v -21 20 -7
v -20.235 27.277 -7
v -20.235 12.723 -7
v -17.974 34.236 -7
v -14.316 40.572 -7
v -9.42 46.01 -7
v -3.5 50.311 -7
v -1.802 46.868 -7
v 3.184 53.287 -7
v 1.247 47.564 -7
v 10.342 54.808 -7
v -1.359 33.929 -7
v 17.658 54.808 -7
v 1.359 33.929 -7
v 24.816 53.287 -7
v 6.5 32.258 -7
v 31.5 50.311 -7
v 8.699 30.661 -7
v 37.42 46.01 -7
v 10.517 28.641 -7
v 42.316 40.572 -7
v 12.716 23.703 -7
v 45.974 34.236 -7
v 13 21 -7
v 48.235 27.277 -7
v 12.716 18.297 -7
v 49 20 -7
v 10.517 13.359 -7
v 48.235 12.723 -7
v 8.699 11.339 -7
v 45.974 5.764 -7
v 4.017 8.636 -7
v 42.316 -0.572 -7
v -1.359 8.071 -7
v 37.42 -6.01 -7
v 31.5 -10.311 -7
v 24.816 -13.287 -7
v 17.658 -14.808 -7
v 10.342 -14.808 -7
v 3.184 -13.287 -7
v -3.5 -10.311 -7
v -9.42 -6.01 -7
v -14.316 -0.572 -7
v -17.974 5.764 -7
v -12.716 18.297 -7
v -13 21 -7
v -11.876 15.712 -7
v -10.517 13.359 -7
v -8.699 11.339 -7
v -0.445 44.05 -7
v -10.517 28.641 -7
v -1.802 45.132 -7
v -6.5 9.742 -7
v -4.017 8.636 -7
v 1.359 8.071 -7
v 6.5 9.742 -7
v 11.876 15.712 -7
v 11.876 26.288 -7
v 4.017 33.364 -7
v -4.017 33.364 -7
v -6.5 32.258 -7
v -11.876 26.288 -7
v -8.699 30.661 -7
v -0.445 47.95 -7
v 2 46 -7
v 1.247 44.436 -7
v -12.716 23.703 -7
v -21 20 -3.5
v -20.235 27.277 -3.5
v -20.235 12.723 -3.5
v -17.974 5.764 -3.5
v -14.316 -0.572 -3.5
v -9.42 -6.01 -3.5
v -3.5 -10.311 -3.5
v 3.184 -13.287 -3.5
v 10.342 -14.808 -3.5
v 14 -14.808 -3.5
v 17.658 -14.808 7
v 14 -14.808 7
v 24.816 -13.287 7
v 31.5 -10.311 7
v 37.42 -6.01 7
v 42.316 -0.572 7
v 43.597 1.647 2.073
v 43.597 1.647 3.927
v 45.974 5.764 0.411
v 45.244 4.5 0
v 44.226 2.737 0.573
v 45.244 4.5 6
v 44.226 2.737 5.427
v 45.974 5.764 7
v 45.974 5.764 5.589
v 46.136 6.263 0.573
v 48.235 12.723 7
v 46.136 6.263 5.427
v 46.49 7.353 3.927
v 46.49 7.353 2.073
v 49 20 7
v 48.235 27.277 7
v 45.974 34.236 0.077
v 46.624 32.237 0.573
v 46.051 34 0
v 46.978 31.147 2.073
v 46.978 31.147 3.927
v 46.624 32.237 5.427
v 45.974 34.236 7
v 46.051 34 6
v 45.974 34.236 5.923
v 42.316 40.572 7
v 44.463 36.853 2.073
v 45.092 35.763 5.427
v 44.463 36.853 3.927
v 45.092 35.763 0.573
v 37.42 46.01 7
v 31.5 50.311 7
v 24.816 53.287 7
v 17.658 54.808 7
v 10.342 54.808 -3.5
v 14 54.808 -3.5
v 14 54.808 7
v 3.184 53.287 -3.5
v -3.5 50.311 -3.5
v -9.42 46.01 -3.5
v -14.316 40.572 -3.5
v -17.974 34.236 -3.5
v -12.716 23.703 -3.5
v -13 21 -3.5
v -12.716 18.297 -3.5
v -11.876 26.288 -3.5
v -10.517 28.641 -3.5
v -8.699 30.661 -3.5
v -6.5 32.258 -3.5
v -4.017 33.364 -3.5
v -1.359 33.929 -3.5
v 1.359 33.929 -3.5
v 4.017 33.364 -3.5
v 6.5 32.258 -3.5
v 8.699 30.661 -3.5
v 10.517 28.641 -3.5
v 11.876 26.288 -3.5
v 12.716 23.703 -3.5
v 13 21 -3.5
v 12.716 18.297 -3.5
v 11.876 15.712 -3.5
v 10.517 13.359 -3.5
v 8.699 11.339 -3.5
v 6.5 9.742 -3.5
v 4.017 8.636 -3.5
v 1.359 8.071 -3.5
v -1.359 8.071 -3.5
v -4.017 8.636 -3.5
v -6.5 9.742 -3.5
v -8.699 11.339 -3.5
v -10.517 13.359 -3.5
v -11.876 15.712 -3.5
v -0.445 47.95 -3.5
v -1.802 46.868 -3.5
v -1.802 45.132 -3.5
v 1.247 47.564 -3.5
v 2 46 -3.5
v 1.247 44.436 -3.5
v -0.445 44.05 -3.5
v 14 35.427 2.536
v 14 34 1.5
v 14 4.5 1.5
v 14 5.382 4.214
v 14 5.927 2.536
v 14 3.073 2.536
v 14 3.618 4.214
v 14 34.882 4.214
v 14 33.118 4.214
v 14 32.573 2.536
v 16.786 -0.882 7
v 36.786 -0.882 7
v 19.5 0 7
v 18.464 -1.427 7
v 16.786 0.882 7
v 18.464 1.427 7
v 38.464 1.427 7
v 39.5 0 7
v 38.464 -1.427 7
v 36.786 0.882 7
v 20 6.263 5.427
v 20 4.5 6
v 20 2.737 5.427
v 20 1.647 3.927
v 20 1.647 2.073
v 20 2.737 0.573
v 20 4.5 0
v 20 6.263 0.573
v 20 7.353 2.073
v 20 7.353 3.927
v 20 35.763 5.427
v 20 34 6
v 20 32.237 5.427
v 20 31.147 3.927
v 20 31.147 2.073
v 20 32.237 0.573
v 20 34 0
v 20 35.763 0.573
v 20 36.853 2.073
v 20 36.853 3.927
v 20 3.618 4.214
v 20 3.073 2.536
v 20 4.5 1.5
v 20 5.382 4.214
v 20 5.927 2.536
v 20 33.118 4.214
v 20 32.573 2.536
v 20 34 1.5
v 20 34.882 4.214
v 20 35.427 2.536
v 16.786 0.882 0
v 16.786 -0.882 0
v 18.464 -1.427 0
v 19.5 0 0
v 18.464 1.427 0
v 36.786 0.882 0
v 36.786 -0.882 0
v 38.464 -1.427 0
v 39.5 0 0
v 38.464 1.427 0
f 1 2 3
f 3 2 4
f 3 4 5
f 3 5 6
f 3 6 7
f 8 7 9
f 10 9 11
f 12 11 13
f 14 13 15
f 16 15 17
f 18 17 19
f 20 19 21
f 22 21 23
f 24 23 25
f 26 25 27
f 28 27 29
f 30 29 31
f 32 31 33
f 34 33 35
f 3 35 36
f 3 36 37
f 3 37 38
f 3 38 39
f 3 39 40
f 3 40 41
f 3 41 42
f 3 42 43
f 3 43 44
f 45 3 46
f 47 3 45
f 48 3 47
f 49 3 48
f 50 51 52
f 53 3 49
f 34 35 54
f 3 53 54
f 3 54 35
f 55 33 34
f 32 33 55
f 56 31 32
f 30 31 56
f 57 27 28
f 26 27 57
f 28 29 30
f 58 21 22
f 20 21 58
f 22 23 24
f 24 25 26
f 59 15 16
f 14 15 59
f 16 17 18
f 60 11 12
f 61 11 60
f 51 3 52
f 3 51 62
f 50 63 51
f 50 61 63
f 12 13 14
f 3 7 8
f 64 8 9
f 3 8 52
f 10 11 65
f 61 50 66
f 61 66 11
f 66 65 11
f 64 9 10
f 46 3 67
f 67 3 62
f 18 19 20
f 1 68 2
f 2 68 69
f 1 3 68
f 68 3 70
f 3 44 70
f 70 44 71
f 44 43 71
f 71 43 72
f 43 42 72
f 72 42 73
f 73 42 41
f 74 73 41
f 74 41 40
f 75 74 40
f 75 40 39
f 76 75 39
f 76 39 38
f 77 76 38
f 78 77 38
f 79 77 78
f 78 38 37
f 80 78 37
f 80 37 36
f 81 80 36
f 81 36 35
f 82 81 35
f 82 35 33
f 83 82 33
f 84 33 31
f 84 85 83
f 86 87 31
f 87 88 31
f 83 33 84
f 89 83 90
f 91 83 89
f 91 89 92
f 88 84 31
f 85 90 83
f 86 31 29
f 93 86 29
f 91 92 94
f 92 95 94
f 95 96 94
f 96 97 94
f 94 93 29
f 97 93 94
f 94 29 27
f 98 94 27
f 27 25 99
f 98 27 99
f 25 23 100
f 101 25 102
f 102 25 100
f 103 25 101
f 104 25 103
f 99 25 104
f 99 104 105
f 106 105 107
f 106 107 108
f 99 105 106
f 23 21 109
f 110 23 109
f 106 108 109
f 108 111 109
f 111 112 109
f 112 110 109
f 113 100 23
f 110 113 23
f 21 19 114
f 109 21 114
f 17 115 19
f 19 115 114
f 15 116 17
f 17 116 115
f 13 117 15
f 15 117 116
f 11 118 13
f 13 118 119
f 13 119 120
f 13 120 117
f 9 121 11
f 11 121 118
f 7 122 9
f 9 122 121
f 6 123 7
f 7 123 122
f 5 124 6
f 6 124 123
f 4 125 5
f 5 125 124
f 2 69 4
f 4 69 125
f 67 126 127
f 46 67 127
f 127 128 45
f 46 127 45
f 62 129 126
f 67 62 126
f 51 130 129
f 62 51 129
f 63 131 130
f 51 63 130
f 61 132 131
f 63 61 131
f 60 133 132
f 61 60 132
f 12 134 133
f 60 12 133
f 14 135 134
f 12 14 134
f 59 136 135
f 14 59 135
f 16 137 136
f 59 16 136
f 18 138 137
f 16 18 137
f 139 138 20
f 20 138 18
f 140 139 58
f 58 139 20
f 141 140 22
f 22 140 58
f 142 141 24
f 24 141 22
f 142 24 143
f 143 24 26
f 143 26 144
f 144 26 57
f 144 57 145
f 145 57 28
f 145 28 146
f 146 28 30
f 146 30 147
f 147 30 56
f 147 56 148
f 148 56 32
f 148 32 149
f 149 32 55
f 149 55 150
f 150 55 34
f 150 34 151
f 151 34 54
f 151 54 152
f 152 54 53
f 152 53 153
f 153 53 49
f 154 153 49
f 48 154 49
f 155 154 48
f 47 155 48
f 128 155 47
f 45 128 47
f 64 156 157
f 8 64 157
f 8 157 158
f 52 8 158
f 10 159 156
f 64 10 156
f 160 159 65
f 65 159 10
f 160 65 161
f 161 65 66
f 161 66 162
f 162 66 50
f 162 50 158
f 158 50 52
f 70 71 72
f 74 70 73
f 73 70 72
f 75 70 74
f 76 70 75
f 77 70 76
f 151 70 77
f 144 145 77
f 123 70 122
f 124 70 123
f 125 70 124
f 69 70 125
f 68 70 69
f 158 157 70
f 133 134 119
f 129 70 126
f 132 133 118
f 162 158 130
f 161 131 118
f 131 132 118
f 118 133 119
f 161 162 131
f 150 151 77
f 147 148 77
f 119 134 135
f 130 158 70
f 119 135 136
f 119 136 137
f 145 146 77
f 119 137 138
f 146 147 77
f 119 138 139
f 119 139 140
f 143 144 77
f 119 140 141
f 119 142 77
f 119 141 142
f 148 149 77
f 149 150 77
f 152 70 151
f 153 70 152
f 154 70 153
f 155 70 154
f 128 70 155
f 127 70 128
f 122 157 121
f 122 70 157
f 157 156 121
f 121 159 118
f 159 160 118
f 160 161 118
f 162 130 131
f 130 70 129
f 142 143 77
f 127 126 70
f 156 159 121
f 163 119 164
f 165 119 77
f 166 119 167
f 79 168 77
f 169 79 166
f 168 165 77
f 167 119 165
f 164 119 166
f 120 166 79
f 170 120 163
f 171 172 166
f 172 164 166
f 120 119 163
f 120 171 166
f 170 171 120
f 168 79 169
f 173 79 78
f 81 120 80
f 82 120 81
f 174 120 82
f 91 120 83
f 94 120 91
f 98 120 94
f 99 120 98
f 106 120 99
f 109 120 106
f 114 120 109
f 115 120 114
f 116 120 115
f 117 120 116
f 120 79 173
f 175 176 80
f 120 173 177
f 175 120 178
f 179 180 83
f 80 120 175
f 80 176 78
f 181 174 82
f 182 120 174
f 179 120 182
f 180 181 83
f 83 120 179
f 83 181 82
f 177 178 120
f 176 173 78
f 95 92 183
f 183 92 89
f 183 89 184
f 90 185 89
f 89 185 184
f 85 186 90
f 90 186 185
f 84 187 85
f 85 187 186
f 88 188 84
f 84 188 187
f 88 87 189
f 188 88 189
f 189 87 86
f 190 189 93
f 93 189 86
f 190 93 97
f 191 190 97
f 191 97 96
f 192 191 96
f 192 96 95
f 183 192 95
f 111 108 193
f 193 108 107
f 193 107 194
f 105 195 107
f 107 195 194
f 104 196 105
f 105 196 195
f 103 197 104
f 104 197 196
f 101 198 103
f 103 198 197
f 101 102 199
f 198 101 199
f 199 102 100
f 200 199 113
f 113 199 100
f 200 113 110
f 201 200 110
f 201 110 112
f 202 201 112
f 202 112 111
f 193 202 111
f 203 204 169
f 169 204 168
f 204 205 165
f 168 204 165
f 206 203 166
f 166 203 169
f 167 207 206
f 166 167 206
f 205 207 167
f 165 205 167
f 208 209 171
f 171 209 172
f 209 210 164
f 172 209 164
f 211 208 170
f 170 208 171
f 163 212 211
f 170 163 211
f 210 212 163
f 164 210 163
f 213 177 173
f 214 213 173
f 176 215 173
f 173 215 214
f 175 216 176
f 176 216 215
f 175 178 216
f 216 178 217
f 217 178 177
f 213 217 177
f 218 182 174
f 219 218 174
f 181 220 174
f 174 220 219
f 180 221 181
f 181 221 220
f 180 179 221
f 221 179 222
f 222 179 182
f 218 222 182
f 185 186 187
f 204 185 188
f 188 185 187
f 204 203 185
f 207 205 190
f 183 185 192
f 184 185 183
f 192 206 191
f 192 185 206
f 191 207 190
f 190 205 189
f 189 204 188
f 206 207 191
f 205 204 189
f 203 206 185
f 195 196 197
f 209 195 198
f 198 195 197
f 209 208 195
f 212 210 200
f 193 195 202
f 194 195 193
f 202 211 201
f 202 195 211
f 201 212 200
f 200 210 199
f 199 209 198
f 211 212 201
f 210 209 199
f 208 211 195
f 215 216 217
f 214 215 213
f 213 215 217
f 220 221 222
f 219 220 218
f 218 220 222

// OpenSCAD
//gregs_wades_spacing bottom 50mm
//gregs_wades_spacing side 26.5mm
// prusa i3 z-axis 20mm





difference()
{
	translate([14, 20, 0]) cylinder(h = 14, r = 35, center = true);

	translate([0, 46, -8]) cylinder(h = 5, r = 2);

	translate([18, 0, 0]) cylinder(h = 8, r = 1.5);
	translate([38, 0, 0]) cylinder(h = 8, r = 1.5);
	
	translate([-11, 20, 2]) cube([50, 80, 11], center = true);
	translate([0, 4.5, 3]) rotate([0, 90, 0]) cylinder(h = 40, r = 1.5);
	translate([0, 34, 3]) rotate([0, 90, 0]) cylinder(h = 40, r = 1.5);

	translate([20, 4.5, 3]) rotate([0, 90, 0]) cylinder(h = 40, r = 3);
	translate([20, 34, 3]) rotate([0, 90, 0]) cylinder(h = 40, r = 3);

	translate([0, 21, -8]) cylinder(h = 6, r = 13);
}
